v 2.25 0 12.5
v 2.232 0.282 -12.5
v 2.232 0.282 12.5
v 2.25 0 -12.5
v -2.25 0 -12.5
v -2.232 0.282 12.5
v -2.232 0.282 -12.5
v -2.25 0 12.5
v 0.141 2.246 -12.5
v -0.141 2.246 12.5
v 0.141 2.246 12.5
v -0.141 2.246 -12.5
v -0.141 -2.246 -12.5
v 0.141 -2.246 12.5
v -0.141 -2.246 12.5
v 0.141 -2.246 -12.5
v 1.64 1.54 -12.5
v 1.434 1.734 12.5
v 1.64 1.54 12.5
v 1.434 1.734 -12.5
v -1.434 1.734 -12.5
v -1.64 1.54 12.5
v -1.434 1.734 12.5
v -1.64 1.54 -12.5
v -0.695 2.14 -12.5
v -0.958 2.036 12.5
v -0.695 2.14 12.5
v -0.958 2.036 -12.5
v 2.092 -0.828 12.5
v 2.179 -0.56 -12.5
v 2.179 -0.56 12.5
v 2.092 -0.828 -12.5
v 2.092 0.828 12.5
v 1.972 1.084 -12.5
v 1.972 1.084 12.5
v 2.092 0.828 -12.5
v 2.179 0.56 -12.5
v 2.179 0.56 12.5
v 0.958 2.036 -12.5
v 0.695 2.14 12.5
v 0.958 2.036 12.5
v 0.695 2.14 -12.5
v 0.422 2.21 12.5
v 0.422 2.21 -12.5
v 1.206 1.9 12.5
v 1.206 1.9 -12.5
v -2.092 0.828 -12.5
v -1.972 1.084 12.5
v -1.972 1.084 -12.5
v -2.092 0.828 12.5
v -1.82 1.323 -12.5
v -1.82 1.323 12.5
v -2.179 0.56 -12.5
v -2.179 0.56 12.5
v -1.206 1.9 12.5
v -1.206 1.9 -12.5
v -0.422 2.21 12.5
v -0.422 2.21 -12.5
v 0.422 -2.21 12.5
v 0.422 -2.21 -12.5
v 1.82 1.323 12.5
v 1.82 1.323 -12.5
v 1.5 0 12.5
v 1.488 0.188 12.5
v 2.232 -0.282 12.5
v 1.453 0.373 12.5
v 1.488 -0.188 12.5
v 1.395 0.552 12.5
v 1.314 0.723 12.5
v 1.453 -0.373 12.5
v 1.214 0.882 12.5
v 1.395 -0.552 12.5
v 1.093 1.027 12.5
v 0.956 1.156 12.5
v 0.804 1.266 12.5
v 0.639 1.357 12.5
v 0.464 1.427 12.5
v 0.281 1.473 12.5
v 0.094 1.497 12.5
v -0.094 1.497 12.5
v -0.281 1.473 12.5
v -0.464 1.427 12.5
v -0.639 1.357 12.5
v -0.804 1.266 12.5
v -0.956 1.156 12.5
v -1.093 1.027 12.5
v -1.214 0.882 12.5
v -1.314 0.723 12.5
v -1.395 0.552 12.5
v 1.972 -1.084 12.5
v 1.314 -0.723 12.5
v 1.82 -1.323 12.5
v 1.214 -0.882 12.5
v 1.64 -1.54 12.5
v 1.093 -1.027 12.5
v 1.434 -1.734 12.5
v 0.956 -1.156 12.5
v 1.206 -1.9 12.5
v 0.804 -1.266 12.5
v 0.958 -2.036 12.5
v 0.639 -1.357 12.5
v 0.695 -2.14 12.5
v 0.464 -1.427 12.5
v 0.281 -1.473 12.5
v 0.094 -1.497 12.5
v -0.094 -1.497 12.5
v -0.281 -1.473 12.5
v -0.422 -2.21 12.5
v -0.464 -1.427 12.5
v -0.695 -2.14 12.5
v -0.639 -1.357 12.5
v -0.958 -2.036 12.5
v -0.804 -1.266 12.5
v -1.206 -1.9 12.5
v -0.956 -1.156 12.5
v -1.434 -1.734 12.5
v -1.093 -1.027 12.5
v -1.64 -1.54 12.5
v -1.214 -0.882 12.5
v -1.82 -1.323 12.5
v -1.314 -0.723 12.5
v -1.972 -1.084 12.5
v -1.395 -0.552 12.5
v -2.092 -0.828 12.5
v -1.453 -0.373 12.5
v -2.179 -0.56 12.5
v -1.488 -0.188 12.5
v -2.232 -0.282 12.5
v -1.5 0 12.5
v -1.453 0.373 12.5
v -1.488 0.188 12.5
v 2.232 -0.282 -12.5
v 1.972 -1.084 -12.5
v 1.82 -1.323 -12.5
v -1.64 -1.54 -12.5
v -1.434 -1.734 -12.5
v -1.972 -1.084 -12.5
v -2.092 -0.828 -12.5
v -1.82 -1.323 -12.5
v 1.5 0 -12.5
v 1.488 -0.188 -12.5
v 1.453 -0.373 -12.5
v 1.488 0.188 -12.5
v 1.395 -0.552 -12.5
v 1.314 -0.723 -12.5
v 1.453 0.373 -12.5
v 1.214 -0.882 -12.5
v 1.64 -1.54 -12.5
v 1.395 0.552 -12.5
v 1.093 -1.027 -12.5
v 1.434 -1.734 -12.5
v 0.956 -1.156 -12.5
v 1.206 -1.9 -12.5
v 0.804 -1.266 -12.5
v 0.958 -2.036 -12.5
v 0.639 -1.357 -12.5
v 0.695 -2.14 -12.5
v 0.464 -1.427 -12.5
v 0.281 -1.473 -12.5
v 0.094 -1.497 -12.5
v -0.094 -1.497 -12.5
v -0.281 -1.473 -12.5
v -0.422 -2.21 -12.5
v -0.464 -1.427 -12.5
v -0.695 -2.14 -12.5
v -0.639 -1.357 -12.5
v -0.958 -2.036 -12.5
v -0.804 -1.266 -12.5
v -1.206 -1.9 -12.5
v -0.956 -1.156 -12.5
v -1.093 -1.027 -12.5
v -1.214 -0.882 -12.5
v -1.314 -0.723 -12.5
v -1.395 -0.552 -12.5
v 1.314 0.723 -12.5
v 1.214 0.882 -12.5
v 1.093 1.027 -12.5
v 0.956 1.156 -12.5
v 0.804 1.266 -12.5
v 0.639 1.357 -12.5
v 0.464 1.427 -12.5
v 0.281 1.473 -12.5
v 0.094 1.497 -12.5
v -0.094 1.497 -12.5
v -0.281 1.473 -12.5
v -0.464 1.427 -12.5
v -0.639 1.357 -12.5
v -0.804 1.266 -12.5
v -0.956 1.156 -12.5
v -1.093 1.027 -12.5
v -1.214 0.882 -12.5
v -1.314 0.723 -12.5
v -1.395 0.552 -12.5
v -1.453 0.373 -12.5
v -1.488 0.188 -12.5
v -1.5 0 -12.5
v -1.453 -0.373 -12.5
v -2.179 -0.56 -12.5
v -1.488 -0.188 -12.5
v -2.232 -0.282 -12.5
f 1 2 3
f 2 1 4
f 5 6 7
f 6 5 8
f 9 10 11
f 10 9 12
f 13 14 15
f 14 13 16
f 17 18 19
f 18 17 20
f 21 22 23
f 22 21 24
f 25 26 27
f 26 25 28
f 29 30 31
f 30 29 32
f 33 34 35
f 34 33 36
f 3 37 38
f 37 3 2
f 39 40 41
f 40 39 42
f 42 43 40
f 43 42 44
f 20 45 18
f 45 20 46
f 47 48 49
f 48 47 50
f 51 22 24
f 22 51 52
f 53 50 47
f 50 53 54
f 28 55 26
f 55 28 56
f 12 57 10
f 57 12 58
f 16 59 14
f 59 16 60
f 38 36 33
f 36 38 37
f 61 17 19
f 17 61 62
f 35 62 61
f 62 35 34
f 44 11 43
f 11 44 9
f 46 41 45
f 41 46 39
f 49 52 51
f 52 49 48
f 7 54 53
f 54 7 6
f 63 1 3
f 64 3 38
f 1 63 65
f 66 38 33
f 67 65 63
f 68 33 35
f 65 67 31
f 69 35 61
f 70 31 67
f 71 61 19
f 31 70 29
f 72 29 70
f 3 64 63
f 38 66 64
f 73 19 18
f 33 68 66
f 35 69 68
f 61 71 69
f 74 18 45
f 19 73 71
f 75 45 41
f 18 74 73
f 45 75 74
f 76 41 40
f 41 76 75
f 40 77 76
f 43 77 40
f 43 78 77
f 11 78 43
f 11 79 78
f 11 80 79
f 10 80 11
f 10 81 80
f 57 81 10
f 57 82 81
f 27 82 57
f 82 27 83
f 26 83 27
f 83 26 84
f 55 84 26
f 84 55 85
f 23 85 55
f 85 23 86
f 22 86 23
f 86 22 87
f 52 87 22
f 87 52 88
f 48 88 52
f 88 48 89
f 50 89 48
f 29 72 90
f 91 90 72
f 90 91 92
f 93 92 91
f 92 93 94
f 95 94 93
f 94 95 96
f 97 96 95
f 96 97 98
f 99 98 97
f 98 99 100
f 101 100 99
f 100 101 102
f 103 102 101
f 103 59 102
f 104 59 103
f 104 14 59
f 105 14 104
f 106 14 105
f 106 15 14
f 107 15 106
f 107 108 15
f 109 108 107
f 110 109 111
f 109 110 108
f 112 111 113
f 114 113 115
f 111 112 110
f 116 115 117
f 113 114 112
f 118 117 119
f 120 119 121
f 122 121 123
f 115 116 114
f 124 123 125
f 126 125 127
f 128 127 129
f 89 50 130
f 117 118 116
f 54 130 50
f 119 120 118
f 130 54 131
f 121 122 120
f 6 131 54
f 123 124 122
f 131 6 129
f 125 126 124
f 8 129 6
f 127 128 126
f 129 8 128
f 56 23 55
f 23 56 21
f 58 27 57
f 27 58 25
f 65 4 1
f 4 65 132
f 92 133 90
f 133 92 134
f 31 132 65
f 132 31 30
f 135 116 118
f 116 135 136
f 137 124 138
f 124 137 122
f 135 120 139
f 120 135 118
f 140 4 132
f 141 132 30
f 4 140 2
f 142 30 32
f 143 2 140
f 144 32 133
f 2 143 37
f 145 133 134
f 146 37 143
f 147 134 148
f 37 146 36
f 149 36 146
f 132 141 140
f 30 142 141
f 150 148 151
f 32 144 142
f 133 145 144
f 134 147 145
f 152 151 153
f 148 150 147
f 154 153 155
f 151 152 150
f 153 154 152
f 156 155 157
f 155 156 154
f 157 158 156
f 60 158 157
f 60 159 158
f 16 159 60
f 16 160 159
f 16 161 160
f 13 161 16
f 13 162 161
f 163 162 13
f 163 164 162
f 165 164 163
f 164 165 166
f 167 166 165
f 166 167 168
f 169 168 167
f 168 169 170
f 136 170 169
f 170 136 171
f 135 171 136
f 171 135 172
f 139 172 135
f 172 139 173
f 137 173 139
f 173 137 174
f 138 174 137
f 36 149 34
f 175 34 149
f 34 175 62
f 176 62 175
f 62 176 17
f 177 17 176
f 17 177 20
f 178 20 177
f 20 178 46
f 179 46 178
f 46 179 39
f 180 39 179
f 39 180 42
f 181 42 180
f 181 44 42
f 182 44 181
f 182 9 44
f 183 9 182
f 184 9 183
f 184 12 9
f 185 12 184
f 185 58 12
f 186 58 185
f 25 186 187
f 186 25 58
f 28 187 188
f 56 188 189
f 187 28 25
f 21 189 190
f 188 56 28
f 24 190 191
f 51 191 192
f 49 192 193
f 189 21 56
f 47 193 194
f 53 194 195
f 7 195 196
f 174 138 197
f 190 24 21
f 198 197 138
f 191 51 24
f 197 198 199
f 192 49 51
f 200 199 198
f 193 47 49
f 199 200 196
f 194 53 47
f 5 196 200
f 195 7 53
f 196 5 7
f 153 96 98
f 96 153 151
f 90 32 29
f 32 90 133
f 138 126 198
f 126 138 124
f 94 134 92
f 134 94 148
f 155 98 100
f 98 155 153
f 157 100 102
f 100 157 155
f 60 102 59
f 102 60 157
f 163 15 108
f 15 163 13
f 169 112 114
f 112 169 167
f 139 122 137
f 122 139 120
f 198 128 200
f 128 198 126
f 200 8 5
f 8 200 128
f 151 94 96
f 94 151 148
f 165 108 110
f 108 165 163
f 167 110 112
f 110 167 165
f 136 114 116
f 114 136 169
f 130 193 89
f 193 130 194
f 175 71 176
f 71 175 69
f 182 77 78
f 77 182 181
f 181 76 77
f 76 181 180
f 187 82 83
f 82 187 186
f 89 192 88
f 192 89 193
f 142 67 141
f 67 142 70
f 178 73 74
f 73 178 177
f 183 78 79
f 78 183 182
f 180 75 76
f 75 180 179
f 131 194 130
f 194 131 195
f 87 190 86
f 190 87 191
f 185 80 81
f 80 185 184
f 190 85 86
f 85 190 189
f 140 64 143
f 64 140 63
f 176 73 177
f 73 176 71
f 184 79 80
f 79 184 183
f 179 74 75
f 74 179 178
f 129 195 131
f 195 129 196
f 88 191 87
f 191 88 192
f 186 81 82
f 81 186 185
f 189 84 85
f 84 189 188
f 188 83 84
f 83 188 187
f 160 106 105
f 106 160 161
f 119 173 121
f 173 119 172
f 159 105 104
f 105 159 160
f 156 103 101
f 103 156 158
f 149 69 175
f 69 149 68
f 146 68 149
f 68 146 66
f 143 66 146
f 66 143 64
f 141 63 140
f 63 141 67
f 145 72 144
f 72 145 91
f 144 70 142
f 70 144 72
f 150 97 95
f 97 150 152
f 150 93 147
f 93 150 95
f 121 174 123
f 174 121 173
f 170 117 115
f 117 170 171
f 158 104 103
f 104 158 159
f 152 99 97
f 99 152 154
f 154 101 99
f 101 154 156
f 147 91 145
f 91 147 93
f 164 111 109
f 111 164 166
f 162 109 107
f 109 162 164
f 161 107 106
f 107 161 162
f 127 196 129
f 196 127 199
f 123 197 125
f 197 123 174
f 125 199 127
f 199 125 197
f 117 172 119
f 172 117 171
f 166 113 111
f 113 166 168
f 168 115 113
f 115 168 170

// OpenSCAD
$fn = 50;


difference() {
	union() {
		translate(v = [0, 0, -12.5000000000]) {
			cylinder(h = 25, r = 2.2500000000);
		}
	}
	union() {
		translate(v = [0, 0, -100.0000000000]) {
			cylinder(h = 200, r = 1.5000000000);
		}
	}
}
